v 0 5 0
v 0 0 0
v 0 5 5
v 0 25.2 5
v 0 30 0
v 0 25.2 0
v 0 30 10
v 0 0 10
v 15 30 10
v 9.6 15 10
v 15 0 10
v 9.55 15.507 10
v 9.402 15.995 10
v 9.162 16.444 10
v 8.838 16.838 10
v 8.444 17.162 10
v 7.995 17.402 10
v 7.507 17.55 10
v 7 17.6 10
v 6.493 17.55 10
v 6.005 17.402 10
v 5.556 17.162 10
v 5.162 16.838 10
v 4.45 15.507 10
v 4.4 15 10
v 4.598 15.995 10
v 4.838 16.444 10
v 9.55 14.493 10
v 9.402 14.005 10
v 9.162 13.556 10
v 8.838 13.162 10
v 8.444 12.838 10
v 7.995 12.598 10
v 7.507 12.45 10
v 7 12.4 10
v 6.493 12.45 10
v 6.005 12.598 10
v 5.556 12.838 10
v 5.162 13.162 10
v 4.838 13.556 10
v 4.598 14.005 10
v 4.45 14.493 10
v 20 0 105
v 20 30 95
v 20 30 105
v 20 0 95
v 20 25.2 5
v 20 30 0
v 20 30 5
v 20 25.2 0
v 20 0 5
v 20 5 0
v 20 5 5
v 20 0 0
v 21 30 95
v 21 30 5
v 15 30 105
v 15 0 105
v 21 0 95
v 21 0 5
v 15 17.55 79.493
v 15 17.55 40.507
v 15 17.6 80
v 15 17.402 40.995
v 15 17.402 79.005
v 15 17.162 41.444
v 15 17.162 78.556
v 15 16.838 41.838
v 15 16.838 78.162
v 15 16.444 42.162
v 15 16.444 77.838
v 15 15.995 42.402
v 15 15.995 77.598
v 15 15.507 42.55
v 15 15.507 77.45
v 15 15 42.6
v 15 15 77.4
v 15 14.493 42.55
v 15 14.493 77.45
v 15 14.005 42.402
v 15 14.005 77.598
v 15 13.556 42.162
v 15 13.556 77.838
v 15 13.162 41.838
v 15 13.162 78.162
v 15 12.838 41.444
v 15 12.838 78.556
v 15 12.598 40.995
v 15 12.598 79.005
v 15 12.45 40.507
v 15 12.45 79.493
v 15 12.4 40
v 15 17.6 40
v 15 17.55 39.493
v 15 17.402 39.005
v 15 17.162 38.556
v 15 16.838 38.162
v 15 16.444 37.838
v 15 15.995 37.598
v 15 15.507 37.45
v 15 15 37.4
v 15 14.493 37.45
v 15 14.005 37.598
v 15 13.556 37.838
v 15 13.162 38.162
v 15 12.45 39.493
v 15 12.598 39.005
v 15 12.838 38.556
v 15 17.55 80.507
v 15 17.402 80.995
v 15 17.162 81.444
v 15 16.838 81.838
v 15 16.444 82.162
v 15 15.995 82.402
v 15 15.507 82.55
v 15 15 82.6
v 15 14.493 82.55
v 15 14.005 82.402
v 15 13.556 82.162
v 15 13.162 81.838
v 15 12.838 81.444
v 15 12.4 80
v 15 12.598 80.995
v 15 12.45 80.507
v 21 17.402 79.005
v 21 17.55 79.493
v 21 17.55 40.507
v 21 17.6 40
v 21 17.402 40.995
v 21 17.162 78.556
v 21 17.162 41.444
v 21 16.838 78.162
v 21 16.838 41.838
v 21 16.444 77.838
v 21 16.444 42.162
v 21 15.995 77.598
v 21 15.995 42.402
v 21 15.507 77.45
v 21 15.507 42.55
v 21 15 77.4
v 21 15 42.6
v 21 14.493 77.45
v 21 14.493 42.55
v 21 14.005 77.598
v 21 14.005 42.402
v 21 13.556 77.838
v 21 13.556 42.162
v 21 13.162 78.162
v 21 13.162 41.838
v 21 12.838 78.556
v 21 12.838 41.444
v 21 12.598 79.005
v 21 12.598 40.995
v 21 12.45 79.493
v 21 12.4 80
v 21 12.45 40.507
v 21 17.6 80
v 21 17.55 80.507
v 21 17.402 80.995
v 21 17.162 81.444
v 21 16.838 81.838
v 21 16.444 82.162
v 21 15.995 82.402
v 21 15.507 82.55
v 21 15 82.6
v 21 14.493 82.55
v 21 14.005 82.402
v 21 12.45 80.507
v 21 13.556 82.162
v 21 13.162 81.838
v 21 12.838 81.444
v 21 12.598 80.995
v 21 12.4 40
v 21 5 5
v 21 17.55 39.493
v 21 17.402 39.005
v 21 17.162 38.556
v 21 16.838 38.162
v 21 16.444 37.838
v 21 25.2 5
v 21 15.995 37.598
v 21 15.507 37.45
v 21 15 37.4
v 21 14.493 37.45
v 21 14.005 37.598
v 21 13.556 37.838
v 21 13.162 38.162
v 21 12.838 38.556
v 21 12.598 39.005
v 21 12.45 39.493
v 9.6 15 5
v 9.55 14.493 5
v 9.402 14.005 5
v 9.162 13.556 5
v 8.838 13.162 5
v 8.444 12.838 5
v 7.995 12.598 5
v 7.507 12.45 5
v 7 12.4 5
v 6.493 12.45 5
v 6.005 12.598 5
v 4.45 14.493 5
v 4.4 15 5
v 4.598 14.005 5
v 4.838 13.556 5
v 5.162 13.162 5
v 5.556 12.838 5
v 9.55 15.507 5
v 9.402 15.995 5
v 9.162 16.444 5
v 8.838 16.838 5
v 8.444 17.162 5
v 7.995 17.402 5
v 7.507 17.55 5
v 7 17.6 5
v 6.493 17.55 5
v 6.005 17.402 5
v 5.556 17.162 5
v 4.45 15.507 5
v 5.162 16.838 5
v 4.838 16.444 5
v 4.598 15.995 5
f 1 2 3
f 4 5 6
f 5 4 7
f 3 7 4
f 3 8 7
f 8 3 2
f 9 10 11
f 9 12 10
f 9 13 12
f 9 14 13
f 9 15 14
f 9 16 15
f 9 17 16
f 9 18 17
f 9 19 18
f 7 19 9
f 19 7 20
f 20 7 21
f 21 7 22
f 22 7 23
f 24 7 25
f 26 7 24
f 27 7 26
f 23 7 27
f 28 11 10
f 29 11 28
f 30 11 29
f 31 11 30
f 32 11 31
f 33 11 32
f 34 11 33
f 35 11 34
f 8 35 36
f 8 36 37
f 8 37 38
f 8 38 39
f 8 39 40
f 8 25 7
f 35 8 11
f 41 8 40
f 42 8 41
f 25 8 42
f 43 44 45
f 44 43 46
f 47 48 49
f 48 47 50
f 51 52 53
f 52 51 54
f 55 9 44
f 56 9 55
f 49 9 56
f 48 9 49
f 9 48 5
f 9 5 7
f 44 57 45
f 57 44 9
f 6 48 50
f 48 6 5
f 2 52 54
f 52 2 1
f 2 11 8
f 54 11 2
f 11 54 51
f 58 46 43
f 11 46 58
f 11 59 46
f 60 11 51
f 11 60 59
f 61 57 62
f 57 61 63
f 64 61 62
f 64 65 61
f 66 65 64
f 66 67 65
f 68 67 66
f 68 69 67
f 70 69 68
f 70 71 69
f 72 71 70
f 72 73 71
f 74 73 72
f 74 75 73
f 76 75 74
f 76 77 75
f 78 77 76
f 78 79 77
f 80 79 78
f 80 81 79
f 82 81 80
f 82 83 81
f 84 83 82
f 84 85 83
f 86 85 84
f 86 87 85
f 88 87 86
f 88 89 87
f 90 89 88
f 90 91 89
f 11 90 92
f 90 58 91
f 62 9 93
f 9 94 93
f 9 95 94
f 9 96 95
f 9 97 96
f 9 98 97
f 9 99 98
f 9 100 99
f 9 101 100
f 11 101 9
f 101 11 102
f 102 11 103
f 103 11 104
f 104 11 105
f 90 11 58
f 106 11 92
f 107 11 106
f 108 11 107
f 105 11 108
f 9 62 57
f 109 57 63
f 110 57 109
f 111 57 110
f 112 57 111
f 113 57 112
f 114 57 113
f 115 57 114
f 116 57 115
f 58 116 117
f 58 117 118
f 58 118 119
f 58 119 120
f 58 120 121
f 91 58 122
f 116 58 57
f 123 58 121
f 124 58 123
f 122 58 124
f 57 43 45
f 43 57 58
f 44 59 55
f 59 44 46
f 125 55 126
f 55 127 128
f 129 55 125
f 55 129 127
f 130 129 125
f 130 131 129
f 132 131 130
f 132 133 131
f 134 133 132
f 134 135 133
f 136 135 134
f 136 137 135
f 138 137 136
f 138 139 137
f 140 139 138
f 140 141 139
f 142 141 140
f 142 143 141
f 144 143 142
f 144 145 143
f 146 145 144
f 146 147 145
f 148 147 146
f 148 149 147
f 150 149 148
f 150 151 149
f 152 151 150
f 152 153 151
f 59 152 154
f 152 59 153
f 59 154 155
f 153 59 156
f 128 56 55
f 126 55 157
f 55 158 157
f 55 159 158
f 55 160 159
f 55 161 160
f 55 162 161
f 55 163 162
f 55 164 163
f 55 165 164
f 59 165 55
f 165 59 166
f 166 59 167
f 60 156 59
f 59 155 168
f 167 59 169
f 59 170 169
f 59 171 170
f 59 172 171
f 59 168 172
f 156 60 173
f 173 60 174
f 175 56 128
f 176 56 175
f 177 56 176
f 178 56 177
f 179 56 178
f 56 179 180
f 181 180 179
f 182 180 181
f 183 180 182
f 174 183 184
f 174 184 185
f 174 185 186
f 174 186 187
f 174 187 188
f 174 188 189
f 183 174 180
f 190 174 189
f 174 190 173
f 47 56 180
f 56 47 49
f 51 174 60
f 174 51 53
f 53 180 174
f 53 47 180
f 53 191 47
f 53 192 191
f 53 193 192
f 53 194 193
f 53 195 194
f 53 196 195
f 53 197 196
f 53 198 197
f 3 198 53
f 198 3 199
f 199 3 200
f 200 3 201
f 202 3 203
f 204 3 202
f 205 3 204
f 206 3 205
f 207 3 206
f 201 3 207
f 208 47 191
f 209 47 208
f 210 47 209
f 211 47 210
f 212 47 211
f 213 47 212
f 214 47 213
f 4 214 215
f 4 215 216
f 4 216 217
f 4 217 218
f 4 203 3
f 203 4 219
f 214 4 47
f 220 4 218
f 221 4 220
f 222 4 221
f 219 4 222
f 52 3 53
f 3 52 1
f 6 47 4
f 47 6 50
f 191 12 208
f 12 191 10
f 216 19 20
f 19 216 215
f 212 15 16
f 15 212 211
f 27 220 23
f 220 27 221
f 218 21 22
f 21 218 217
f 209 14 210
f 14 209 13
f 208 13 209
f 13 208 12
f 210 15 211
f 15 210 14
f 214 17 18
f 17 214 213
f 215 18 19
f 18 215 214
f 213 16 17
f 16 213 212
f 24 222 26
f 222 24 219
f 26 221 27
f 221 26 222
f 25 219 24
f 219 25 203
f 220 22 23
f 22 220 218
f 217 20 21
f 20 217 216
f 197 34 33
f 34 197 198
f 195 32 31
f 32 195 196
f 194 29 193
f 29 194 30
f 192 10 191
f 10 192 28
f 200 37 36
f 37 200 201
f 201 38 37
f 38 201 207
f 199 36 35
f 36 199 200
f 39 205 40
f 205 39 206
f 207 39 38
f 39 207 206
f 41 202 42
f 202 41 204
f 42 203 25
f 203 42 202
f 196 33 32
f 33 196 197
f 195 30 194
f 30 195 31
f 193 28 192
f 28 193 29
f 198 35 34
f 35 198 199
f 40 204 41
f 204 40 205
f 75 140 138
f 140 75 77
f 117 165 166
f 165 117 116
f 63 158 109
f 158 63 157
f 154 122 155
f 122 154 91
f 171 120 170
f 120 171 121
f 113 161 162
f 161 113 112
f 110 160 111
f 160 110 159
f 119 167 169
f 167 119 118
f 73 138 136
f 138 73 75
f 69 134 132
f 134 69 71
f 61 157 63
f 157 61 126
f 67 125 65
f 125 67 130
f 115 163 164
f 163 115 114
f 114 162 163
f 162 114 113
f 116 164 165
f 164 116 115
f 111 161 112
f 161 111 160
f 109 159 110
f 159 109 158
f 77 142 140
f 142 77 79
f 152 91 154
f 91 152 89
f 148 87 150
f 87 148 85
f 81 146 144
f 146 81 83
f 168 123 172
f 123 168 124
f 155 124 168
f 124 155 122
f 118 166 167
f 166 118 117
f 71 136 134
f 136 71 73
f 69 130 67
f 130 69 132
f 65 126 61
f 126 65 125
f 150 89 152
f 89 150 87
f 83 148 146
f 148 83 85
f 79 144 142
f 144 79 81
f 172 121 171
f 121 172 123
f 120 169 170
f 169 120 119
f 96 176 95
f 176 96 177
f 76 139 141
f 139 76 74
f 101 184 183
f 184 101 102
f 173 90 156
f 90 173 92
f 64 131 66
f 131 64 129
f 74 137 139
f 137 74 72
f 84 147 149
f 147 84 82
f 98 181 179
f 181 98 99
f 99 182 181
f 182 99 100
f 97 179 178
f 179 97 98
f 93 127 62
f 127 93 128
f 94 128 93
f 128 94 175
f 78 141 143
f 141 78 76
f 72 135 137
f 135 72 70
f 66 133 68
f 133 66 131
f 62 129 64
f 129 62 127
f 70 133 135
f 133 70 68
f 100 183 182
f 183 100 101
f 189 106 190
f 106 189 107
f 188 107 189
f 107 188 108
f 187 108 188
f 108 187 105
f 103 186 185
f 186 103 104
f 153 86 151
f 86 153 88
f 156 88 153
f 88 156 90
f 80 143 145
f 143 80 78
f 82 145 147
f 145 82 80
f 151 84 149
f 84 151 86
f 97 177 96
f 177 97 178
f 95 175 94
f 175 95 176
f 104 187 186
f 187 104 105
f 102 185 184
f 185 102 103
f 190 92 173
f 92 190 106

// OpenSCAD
$fn=32;
//difference(){
//    union(){
//        cube([20,30,28]);
//        translate([15,0,5])cube([5,30,100]);
//        translate([20,0,5])cube([1,30,90]);
//    };
//    translate([-2.5,5,-15])cube([30,20.2,20]);
//    translate([7,15,-1])cylinder(d=5.2,h=30);
//    translate([7,15,23])cylinder(d=9,h=100);
//    translate([0,15,80])rotate([0,90,0])cylinder(d=5.2,h=30);
////    translate([14,15,80])rotate([0,90,0])cylinder(d=9,h=5);
//    translate([0,15,40])rotate([0,90,0])cylinder(d=5.2,h=30);
////    translate([14,15,40])rotate([0,90,0])cylinder(d=9,h=5);
//};

difference(){
    union(){
        cube([20,30,10]);
        translate([15,0,5])cube([5,30,100]);
        translate([20,0,5])cube([1,30,90]);
    };
    translate([-2.5,5,-15])cube([30,20.2,20]);
    translate([7,15,-1])cylinder(d=5.2,h=30);
    translate([7,15,23])cylinder(d=9,h=100);
    translate([0,15,80])rotate([0,90,0])cylinder(d=5.2,h=30);
//    translate([14,15,80])rotate([0,90,0])cylinder(d=9,h=5);
    translate([0,15,40])rotate([0,90,0])cylinder(d=5.2,h=30);
//    translate([14,15,40])rotate([0,90,0])cylinder(d=9,h=5);
};
